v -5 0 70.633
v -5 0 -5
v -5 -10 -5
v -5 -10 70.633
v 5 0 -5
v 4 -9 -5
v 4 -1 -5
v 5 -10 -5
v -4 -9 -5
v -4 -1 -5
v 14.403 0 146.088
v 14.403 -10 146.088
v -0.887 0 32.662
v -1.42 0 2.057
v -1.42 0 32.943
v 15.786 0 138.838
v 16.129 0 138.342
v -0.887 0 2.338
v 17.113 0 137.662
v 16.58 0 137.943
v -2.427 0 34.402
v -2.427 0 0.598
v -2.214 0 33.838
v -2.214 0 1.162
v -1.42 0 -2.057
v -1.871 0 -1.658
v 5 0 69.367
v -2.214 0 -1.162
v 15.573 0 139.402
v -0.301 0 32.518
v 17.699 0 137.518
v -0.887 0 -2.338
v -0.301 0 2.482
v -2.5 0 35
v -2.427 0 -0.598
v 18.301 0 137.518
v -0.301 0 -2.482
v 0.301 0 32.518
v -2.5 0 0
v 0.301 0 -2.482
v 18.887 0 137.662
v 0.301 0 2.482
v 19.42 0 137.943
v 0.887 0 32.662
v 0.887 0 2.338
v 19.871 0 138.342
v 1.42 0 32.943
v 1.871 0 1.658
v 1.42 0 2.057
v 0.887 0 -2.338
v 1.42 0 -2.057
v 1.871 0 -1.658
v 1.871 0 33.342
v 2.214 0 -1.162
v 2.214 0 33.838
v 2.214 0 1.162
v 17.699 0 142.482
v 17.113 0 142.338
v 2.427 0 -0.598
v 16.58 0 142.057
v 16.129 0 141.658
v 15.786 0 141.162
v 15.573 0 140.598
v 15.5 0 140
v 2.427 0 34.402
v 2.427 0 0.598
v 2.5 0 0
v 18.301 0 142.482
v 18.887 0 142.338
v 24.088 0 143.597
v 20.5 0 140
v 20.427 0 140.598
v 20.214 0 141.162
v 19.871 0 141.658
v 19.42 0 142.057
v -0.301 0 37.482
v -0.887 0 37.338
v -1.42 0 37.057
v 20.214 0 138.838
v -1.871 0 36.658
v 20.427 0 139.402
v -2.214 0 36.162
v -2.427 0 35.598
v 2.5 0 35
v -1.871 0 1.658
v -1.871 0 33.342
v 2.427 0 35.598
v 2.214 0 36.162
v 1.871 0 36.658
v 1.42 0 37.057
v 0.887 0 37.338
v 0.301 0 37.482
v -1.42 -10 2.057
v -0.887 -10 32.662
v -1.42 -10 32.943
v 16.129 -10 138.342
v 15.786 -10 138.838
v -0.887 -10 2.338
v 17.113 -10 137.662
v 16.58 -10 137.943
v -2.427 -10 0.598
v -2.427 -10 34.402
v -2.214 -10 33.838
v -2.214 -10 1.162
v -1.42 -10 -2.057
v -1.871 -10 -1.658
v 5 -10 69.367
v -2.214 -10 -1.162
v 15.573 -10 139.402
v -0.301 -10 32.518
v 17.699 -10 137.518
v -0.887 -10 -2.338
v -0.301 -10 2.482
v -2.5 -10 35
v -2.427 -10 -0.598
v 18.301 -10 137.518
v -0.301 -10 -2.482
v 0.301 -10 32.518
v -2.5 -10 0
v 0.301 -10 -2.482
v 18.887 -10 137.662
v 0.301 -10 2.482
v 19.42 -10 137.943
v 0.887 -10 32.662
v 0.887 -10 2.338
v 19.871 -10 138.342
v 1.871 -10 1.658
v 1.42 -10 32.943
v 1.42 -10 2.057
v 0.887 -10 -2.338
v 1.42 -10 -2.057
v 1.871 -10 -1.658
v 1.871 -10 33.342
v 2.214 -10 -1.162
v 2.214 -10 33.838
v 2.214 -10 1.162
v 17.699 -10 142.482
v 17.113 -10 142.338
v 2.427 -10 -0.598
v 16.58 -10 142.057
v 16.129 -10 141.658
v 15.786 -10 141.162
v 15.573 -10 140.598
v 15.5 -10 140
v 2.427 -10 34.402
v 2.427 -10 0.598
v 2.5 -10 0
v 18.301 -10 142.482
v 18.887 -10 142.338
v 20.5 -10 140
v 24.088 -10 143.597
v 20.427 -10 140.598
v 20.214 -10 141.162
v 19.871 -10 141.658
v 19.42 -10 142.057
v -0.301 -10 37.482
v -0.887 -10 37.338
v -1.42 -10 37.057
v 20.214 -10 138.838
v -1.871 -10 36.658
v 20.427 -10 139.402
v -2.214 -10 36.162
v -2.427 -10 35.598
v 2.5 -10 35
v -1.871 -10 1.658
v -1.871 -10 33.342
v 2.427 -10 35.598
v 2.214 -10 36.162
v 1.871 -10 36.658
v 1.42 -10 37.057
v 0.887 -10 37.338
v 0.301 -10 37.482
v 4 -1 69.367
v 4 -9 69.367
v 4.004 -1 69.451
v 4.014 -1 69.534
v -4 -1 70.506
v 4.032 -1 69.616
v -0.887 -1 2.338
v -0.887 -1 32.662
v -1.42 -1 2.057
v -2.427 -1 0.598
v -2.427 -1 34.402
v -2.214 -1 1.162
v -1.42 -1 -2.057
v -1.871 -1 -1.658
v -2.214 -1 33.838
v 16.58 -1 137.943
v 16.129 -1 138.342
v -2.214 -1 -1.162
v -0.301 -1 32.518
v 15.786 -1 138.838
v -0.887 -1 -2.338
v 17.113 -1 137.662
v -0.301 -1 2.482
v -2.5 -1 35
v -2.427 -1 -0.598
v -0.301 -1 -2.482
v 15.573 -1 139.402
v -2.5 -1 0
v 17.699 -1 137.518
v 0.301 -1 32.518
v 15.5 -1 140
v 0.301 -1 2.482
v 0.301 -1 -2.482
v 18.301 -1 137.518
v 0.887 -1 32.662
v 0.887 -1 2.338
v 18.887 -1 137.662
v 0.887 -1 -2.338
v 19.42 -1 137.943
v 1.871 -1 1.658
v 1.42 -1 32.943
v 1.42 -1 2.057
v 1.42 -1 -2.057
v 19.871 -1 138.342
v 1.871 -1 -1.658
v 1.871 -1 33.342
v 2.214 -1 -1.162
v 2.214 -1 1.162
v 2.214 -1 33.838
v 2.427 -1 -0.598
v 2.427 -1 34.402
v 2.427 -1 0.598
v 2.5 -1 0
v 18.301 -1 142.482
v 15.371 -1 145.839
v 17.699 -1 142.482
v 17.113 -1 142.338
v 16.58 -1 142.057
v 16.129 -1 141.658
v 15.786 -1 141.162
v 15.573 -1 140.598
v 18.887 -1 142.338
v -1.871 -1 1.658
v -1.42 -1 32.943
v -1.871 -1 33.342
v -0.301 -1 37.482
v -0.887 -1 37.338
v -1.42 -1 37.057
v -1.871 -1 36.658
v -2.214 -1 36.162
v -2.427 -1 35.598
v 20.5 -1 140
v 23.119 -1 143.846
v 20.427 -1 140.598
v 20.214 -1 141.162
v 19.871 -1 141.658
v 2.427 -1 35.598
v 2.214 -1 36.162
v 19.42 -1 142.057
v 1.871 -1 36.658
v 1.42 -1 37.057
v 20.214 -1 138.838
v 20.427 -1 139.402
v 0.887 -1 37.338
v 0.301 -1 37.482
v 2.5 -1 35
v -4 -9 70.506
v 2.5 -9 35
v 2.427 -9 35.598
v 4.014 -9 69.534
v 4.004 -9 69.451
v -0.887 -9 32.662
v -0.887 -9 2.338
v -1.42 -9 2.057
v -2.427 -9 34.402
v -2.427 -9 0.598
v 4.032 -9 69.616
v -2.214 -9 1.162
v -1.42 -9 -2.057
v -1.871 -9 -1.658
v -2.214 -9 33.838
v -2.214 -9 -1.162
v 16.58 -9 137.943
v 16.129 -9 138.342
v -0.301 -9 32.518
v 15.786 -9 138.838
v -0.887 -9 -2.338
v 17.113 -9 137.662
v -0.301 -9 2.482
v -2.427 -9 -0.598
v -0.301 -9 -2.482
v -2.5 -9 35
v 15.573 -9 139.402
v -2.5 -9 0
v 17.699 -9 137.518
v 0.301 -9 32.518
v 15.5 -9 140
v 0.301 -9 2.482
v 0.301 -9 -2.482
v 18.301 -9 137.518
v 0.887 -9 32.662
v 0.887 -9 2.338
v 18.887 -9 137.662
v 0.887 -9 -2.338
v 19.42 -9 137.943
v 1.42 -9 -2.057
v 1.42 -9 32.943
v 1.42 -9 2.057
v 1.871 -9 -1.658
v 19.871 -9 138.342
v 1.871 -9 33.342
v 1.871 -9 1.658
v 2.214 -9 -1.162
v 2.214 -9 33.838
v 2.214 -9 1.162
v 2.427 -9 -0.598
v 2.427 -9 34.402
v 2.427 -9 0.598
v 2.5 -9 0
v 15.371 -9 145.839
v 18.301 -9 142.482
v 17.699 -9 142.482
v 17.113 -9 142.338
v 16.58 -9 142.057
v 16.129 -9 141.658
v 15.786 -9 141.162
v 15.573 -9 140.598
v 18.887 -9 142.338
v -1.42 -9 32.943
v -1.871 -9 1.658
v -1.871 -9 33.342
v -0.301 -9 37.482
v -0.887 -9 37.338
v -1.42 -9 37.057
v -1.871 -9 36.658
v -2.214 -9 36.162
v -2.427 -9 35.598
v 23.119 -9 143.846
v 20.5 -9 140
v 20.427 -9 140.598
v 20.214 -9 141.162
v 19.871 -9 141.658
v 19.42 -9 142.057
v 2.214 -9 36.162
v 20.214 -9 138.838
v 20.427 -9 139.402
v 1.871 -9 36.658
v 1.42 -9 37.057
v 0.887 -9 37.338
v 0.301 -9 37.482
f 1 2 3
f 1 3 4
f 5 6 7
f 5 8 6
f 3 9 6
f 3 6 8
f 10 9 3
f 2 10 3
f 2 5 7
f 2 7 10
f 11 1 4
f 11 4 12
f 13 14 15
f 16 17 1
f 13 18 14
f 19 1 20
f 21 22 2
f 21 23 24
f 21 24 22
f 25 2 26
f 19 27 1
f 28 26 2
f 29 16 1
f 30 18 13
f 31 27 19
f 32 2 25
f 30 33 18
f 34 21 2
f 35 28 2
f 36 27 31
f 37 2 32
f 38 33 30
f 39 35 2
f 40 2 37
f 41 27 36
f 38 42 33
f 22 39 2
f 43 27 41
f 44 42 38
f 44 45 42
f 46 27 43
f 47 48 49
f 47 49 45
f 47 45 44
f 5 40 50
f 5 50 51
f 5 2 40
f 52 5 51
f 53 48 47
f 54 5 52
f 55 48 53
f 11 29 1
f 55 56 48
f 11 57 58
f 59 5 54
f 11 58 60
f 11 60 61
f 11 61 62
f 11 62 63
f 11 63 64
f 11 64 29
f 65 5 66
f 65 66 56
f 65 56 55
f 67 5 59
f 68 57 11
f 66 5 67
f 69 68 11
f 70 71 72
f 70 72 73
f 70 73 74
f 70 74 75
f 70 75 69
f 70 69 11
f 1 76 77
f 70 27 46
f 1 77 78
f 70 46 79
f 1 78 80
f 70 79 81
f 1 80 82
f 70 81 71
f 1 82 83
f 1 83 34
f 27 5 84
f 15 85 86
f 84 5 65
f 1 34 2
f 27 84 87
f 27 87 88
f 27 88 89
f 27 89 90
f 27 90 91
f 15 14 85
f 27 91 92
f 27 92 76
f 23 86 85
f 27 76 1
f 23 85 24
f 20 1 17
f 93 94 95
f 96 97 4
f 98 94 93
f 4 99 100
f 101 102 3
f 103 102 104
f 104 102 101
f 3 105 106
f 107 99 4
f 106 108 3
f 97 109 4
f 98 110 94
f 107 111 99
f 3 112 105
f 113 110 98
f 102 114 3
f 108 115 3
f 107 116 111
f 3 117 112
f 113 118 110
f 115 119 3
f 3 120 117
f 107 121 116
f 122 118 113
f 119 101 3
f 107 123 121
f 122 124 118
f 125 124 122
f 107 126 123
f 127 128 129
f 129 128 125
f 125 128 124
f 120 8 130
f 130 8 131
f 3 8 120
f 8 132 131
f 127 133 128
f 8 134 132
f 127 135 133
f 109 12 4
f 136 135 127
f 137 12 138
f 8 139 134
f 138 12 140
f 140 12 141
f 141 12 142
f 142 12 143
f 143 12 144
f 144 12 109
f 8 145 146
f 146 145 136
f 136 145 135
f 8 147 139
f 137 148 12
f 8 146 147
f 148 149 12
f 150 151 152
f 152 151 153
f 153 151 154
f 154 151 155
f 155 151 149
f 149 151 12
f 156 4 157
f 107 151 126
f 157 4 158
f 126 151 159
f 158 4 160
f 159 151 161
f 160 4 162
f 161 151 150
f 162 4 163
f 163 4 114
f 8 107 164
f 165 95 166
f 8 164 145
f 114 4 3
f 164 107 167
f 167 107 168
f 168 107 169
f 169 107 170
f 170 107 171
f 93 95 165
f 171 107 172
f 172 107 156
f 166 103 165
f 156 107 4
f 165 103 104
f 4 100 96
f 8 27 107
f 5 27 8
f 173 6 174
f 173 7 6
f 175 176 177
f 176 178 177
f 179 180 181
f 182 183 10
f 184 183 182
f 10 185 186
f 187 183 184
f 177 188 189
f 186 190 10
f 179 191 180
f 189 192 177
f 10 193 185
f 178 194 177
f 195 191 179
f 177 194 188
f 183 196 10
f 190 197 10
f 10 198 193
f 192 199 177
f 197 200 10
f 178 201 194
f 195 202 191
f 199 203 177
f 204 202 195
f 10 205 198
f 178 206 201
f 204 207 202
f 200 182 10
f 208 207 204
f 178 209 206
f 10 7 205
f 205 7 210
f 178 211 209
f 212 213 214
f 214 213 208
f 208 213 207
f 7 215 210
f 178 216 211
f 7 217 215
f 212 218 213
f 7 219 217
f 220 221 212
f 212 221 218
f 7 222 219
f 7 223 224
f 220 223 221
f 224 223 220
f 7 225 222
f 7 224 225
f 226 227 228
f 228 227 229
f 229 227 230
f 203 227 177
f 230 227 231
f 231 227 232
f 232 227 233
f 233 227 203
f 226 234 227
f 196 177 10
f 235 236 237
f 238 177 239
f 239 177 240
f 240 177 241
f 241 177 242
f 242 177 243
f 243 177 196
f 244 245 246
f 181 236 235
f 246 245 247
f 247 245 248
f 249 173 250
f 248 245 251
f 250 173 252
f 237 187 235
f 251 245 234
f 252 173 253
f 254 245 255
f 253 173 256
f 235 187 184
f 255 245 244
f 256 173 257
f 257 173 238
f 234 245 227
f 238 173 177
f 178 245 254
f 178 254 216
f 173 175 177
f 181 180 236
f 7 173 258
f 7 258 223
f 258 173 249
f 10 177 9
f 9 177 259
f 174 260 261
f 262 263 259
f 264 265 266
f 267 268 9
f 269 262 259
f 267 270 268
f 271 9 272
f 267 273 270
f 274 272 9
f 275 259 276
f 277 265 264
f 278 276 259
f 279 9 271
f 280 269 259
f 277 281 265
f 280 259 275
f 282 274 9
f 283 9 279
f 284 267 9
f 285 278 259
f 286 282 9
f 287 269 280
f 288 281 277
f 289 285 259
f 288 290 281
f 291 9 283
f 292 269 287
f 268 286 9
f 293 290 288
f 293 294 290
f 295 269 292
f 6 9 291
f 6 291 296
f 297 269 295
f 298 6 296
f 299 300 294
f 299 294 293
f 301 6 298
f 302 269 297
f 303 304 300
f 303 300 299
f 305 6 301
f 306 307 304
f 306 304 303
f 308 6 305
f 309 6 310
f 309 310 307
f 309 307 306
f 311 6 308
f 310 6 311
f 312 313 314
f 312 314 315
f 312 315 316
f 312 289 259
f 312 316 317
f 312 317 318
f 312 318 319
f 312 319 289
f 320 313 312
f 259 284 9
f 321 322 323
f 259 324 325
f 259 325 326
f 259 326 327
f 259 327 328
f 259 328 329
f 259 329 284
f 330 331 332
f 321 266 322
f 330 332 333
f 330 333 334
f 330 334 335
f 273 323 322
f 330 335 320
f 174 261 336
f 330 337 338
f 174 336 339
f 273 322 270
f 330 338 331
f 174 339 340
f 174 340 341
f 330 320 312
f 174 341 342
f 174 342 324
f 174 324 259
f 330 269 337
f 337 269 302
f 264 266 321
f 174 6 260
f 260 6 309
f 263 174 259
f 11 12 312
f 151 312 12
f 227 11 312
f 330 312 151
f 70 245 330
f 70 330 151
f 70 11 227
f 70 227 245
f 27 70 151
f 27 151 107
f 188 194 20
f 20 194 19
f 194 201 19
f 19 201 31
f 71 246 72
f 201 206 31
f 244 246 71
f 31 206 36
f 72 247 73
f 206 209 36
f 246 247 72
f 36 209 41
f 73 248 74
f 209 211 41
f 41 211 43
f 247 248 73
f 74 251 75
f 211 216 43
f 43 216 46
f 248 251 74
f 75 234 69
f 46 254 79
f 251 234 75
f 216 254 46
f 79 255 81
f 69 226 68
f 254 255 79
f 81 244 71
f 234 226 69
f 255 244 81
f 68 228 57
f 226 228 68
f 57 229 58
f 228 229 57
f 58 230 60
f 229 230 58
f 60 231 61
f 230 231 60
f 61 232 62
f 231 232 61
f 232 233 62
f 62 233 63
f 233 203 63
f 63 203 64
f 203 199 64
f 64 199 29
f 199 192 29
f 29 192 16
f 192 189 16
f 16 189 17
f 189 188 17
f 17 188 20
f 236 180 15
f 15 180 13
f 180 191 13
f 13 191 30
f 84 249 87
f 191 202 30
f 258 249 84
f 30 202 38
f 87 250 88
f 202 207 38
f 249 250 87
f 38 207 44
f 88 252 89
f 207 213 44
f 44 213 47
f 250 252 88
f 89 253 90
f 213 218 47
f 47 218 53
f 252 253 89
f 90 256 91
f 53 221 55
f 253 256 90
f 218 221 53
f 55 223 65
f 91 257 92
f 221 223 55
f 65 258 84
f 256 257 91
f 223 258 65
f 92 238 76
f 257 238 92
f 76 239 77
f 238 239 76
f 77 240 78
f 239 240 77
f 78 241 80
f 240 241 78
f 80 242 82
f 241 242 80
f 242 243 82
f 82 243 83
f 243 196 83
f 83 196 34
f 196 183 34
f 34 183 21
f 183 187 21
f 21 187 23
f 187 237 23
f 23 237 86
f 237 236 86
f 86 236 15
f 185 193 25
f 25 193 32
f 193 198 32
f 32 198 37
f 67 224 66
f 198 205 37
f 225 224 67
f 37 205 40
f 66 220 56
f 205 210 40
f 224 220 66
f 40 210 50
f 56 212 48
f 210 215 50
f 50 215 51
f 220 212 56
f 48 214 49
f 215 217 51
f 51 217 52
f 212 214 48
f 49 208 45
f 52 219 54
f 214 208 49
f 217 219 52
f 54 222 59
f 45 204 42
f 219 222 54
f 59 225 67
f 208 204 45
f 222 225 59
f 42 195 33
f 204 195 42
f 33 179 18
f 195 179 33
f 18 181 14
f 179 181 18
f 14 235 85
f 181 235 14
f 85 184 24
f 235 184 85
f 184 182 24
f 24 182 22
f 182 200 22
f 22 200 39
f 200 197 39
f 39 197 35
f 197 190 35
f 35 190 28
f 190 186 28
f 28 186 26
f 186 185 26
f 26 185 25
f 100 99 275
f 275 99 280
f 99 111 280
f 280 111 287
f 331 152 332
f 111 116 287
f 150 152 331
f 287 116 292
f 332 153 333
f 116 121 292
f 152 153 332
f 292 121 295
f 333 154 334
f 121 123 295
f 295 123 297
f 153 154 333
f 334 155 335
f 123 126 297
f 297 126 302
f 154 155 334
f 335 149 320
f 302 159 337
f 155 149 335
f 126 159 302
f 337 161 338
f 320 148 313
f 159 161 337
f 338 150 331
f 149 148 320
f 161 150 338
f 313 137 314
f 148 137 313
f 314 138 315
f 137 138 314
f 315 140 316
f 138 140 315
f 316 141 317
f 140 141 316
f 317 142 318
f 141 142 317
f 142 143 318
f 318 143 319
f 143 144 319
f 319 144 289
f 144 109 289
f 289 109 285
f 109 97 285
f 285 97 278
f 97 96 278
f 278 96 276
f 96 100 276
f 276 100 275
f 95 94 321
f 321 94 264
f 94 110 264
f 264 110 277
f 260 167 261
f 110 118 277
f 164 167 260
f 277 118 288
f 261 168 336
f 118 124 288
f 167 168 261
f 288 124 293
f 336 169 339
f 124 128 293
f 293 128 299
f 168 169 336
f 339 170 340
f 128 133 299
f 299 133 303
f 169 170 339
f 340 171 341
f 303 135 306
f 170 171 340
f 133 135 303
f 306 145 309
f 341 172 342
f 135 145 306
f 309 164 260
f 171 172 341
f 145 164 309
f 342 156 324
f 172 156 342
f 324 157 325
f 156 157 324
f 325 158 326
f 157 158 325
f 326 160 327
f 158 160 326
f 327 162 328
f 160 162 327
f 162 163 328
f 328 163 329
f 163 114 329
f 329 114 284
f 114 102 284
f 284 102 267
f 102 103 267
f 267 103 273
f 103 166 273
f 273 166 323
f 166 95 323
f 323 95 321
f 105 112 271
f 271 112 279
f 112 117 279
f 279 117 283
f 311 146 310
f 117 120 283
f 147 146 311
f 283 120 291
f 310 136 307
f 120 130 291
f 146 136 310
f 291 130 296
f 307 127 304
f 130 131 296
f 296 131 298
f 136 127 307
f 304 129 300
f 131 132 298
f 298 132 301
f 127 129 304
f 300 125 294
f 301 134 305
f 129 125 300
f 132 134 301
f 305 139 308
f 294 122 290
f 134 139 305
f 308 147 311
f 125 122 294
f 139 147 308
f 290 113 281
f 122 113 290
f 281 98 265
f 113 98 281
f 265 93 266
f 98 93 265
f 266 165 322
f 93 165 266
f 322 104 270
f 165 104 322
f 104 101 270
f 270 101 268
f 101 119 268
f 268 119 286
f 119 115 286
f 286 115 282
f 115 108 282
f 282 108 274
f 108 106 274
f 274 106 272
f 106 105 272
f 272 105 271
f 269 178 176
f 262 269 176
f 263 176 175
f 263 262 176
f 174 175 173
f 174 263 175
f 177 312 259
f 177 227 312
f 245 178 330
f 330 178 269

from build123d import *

# Parameters (mm, degrees)
PAD_DEPTH    = 10
THICKNESS_T  = -1
SKETCH001_R  = 2.5
POCKET_DEPTH = 10.001


with BuildPart() as part:
    # Sketch → Pad (new body)
    with BuildSketch(Plane.XZ):
        Polygon((-5, -5), (-5, 70.632568), (14.402741, 146.08767), (24.08767, 143.597259), (5, 69.367432), (5, -5), align=None)
    extrude(amount=PAD_DEPTH)

    # Thickness
    thickness_openings = [part.faces().sort_by_distance(p)[0] for p in [
        (19.245205, -5, 144.842465),
        (0, -5, -5),
    ]]
    offset(amount=THICKNESS_T, openings=thickness_openings)

    # Sketch001 (on Face6 of Thickness) → Pocket (cut, through all)
    with BuildSketch(Plane.XZ.offset(10)):
        with Locations((18, 140)):
            Circle(SKETCH001_R)
        Circle(SKETCH001_R)
        with Locations((0, 35)):
            Circle(SKETCH001_R)
    extrude(amount=-POCKET_DEPTH, mode=Mode.SUBTRACT)


solid = part.part
